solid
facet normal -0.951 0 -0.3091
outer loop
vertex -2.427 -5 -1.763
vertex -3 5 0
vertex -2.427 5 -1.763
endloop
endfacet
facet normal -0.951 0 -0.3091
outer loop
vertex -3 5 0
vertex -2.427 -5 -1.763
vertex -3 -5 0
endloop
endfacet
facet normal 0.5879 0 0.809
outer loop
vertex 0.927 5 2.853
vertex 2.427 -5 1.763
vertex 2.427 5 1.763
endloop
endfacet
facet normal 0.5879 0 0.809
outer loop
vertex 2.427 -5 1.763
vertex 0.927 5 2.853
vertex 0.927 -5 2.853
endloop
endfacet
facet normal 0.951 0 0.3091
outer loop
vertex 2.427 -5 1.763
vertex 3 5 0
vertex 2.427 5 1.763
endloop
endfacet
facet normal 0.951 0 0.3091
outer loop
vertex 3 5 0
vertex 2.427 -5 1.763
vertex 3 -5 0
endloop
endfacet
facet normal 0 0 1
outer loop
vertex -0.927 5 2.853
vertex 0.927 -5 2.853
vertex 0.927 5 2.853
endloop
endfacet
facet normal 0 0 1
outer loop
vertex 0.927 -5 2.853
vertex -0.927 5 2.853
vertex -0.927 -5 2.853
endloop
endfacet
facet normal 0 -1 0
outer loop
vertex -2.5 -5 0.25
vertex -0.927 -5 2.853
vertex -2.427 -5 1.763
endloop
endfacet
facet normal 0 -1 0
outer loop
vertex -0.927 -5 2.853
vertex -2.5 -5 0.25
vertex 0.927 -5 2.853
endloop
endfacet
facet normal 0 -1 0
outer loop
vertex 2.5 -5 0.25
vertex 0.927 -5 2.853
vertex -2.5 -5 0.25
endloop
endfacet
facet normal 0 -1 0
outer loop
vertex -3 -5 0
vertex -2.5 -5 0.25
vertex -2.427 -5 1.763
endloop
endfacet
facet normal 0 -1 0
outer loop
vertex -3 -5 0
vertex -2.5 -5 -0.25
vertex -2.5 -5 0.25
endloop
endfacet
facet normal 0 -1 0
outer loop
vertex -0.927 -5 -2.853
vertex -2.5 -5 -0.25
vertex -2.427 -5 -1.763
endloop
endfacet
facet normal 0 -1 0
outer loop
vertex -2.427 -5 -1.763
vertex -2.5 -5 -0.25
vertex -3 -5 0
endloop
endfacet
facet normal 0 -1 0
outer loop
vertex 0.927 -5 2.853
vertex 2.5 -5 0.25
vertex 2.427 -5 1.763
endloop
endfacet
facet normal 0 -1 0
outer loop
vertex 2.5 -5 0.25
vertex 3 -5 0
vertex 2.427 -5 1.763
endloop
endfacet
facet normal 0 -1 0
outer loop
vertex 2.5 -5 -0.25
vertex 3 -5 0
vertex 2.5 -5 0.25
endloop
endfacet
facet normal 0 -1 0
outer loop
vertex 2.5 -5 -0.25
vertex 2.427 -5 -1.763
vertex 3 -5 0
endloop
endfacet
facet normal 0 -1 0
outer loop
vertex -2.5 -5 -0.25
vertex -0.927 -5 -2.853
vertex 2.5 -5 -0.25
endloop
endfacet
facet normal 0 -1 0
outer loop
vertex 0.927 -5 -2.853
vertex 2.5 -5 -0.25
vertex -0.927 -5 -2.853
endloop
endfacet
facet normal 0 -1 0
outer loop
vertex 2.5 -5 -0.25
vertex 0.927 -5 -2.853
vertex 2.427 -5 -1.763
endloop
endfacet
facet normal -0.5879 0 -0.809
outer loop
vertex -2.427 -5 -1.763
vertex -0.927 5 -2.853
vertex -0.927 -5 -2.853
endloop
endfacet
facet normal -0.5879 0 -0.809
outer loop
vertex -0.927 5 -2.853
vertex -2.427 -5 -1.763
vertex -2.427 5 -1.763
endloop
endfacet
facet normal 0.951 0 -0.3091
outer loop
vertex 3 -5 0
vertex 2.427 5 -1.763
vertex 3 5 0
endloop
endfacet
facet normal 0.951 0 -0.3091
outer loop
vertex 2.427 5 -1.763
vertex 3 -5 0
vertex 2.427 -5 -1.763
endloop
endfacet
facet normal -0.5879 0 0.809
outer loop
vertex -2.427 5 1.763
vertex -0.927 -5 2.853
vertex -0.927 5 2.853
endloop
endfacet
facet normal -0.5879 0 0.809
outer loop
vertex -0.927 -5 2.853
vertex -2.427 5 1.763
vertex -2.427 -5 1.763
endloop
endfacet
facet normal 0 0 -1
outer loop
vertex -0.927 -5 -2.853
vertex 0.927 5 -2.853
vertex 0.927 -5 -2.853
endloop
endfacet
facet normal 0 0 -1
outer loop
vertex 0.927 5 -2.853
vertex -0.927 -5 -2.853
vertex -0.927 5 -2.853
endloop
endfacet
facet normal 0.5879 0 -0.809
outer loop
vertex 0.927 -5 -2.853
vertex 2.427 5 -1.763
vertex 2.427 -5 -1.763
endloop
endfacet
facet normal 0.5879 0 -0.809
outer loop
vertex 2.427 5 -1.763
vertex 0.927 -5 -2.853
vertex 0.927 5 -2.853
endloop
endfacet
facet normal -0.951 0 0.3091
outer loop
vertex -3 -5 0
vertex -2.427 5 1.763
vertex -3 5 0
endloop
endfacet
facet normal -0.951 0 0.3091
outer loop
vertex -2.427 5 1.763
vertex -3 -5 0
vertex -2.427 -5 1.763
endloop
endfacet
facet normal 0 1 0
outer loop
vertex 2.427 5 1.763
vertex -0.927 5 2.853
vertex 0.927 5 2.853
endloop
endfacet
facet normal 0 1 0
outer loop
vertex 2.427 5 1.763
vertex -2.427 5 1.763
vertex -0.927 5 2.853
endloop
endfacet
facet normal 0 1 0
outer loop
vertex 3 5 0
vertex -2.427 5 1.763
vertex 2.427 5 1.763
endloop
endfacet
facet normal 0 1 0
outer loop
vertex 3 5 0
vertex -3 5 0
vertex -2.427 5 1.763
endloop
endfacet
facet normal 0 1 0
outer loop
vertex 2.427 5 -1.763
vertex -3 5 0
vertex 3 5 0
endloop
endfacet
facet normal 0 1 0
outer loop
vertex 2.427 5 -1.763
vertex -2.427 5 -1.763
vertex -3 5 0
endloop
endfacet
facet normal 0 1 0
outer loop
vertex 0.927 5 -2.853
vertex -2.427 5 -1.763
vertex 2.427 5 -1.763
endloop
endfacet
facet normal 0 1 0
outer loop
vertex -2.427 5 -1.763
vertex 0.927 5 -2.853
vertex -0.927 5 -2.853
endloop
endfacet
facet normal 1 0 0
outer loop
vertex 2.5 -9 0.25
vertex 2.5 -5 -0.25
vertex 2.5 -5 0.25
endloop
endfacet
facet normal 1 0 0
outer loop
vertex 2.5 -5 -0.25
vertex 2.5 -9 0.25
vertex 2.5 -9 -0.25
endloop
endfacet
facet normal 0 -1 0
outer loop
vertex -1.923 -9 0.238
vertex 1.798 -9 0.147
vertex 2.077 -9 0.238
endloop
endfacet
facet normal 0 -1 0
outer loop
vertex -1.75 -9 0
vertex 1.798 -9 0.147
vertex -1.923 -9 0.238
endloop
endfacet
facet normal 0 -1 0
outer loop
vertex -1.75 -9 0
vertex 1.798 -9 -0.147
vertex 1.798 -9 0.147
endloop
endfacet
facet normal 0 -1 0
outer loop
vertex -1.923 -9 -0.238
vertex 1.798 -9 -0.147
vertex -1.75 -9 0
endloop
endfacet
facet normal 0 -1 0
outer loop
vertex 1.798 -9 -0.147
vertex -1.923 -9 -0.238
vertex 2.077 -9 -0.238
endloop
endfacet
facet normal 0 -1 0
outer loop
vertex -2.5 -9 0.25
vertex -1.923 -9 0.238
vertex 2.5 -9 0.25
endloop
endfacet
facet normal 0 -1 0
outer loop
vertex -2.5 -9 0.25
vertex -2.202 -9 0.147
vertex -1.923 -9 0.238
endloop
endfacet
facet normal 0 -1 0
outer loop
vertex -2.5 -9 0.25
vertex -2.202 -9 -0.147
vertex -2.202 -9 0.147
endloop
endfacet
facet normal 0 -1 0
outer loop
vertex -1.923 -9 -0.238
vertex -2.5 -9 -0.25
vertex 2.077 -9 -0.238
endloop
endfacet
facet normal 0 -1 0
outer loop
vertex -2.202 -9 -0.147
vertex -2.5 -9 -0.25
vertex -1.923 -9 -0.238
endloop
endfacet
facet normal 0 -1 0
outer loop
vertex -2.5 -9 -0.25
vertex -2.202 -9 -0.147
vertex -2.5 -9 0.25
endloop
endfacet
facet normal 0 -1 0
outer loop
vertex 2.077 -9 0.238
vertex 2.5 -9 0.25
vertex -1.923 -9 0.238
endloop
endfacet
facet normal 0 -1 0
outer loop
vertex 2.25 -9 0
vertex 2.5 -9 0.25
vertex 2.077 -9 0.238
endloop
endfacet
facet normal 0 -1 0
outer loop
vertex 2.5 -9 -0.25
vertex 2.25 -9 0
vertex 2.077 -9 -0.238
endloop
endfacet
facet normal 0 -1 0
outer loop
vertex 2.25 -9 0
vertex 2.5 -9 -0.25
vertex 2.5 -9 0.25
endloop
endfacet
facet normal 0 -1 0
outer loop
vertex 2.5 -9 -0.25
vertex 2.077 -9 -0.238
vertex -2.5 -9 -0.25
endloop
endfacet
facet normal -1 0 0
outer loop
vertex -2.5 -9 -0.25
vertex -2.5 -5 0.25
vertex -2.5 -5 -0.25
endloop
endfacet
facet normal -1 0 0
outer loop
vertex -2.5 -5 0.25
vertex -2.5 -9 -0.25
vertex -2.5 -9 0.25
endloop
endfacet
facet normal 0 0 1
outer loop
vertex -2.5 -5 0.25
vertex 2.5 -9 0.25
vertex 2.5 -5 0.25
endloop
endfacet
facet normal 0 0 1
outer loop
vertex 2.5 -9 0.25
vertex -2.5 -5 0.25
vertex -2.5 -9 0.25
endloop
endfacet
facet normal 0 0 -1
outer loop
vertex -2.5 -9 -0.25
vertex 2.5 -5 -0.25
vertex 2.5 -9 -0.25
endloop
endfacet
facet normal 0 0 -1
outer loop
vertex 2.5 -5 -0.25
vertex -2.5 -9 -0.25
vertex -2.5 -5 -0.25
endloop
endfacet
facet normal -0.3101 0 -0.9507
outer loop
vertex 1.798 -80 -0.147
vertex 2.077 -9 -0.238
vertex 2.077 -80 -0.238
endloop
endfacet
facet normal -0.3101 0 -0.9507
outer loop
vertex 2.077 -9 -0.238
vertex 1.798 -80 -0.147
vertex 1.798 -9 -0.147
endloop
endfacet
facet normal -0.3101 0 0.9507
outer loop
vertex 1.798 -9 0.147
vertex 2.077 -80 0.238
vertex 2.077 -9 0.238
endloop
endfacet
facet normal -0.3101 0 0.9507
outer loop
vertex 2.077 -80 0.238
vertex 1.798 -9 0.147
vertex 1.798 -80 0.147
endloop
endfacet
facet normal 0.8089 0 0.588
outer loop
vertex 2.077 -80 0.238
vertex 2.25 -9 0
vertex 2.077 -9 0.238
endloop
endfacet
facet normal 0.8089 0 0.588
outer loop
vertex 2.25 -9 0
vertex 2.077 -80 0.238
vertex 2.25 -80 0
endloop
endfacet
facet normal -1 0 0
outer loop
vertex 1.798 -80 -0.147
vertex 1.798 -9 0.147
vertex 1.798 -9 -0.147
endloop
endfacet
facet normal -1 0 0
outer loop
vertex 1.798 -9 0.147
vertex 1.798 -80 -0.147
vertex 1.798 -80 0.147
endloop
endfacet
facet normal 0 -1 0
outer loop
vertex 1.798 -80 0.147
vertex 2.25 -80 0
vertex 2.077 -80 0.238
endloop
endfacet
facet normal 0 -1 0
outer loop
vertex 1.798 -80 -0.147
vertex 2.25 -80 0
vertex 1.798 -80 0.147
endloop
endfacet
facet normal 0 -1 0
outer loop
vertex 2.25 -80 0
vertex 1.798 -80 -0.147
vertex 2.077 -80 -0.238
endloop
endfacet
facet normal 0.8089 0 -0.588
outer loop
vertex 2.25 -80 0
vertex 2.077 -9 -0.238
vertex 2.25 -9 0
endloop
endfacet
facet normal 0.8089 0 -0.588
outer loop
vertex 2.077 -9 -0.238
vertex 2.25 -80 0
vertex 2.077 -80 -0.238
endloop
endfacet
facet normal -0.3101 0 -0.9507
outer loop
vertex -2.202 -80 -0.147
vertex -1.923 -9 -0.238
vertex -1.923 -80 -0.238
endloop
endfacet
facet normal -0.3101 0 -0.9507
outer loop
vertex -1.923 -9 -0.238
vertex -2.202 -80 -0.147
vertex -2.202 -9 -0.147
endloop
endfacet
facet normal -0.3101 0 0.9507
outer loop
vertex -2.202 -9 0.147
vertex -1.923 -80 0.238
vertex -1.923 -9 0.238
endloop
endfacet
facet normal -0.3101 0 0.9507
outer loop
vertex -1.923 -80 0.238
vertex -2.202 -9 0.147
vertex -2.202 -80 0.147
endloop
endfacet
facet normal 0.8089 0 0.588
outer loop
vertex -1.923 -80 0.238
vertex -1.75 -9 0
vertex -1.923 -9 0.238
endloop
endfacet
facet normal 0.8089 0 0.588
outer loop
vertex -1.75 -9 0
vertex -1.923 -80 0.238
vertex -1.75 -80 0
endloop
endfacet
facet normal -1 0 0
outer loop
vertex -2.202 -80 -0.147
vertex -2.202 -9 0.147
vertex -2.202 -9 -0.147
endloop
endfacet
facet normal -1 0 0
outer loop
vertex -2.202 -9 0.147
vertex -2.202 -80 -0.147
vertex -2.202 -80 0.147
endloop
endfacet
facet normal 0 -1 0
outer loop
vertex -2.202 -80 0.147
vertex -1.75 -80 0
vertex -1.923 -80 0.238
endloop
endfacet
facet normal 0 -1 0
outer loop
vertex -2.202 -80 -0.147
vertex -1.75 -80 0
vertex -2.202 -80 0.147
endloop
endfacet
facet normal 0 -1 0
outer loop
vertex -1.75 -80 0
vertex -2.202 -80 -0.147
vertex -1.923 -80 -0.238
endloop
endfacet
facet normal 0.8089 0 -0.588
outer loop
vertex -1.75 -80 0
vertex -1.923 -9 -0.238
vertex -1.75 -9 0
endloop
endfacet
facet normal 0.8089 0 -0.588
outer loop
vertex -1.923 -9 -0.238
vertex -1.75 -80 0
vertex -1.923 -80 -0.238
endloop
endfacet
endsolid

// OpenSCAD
rotate([90, 0, 0]) {
  cylinder(h=10, d=6, center=true);
  translate([0, 0, 7]) {
      cube([5, 0.5, 4], center=true);
  } 
  translate([2, 0, 0]) {
      cylinder(h=80, d=0.5);
  }
  translate([-2, 0, 0]) {
      cylinder(h=80, d=0.5);
  }
}
